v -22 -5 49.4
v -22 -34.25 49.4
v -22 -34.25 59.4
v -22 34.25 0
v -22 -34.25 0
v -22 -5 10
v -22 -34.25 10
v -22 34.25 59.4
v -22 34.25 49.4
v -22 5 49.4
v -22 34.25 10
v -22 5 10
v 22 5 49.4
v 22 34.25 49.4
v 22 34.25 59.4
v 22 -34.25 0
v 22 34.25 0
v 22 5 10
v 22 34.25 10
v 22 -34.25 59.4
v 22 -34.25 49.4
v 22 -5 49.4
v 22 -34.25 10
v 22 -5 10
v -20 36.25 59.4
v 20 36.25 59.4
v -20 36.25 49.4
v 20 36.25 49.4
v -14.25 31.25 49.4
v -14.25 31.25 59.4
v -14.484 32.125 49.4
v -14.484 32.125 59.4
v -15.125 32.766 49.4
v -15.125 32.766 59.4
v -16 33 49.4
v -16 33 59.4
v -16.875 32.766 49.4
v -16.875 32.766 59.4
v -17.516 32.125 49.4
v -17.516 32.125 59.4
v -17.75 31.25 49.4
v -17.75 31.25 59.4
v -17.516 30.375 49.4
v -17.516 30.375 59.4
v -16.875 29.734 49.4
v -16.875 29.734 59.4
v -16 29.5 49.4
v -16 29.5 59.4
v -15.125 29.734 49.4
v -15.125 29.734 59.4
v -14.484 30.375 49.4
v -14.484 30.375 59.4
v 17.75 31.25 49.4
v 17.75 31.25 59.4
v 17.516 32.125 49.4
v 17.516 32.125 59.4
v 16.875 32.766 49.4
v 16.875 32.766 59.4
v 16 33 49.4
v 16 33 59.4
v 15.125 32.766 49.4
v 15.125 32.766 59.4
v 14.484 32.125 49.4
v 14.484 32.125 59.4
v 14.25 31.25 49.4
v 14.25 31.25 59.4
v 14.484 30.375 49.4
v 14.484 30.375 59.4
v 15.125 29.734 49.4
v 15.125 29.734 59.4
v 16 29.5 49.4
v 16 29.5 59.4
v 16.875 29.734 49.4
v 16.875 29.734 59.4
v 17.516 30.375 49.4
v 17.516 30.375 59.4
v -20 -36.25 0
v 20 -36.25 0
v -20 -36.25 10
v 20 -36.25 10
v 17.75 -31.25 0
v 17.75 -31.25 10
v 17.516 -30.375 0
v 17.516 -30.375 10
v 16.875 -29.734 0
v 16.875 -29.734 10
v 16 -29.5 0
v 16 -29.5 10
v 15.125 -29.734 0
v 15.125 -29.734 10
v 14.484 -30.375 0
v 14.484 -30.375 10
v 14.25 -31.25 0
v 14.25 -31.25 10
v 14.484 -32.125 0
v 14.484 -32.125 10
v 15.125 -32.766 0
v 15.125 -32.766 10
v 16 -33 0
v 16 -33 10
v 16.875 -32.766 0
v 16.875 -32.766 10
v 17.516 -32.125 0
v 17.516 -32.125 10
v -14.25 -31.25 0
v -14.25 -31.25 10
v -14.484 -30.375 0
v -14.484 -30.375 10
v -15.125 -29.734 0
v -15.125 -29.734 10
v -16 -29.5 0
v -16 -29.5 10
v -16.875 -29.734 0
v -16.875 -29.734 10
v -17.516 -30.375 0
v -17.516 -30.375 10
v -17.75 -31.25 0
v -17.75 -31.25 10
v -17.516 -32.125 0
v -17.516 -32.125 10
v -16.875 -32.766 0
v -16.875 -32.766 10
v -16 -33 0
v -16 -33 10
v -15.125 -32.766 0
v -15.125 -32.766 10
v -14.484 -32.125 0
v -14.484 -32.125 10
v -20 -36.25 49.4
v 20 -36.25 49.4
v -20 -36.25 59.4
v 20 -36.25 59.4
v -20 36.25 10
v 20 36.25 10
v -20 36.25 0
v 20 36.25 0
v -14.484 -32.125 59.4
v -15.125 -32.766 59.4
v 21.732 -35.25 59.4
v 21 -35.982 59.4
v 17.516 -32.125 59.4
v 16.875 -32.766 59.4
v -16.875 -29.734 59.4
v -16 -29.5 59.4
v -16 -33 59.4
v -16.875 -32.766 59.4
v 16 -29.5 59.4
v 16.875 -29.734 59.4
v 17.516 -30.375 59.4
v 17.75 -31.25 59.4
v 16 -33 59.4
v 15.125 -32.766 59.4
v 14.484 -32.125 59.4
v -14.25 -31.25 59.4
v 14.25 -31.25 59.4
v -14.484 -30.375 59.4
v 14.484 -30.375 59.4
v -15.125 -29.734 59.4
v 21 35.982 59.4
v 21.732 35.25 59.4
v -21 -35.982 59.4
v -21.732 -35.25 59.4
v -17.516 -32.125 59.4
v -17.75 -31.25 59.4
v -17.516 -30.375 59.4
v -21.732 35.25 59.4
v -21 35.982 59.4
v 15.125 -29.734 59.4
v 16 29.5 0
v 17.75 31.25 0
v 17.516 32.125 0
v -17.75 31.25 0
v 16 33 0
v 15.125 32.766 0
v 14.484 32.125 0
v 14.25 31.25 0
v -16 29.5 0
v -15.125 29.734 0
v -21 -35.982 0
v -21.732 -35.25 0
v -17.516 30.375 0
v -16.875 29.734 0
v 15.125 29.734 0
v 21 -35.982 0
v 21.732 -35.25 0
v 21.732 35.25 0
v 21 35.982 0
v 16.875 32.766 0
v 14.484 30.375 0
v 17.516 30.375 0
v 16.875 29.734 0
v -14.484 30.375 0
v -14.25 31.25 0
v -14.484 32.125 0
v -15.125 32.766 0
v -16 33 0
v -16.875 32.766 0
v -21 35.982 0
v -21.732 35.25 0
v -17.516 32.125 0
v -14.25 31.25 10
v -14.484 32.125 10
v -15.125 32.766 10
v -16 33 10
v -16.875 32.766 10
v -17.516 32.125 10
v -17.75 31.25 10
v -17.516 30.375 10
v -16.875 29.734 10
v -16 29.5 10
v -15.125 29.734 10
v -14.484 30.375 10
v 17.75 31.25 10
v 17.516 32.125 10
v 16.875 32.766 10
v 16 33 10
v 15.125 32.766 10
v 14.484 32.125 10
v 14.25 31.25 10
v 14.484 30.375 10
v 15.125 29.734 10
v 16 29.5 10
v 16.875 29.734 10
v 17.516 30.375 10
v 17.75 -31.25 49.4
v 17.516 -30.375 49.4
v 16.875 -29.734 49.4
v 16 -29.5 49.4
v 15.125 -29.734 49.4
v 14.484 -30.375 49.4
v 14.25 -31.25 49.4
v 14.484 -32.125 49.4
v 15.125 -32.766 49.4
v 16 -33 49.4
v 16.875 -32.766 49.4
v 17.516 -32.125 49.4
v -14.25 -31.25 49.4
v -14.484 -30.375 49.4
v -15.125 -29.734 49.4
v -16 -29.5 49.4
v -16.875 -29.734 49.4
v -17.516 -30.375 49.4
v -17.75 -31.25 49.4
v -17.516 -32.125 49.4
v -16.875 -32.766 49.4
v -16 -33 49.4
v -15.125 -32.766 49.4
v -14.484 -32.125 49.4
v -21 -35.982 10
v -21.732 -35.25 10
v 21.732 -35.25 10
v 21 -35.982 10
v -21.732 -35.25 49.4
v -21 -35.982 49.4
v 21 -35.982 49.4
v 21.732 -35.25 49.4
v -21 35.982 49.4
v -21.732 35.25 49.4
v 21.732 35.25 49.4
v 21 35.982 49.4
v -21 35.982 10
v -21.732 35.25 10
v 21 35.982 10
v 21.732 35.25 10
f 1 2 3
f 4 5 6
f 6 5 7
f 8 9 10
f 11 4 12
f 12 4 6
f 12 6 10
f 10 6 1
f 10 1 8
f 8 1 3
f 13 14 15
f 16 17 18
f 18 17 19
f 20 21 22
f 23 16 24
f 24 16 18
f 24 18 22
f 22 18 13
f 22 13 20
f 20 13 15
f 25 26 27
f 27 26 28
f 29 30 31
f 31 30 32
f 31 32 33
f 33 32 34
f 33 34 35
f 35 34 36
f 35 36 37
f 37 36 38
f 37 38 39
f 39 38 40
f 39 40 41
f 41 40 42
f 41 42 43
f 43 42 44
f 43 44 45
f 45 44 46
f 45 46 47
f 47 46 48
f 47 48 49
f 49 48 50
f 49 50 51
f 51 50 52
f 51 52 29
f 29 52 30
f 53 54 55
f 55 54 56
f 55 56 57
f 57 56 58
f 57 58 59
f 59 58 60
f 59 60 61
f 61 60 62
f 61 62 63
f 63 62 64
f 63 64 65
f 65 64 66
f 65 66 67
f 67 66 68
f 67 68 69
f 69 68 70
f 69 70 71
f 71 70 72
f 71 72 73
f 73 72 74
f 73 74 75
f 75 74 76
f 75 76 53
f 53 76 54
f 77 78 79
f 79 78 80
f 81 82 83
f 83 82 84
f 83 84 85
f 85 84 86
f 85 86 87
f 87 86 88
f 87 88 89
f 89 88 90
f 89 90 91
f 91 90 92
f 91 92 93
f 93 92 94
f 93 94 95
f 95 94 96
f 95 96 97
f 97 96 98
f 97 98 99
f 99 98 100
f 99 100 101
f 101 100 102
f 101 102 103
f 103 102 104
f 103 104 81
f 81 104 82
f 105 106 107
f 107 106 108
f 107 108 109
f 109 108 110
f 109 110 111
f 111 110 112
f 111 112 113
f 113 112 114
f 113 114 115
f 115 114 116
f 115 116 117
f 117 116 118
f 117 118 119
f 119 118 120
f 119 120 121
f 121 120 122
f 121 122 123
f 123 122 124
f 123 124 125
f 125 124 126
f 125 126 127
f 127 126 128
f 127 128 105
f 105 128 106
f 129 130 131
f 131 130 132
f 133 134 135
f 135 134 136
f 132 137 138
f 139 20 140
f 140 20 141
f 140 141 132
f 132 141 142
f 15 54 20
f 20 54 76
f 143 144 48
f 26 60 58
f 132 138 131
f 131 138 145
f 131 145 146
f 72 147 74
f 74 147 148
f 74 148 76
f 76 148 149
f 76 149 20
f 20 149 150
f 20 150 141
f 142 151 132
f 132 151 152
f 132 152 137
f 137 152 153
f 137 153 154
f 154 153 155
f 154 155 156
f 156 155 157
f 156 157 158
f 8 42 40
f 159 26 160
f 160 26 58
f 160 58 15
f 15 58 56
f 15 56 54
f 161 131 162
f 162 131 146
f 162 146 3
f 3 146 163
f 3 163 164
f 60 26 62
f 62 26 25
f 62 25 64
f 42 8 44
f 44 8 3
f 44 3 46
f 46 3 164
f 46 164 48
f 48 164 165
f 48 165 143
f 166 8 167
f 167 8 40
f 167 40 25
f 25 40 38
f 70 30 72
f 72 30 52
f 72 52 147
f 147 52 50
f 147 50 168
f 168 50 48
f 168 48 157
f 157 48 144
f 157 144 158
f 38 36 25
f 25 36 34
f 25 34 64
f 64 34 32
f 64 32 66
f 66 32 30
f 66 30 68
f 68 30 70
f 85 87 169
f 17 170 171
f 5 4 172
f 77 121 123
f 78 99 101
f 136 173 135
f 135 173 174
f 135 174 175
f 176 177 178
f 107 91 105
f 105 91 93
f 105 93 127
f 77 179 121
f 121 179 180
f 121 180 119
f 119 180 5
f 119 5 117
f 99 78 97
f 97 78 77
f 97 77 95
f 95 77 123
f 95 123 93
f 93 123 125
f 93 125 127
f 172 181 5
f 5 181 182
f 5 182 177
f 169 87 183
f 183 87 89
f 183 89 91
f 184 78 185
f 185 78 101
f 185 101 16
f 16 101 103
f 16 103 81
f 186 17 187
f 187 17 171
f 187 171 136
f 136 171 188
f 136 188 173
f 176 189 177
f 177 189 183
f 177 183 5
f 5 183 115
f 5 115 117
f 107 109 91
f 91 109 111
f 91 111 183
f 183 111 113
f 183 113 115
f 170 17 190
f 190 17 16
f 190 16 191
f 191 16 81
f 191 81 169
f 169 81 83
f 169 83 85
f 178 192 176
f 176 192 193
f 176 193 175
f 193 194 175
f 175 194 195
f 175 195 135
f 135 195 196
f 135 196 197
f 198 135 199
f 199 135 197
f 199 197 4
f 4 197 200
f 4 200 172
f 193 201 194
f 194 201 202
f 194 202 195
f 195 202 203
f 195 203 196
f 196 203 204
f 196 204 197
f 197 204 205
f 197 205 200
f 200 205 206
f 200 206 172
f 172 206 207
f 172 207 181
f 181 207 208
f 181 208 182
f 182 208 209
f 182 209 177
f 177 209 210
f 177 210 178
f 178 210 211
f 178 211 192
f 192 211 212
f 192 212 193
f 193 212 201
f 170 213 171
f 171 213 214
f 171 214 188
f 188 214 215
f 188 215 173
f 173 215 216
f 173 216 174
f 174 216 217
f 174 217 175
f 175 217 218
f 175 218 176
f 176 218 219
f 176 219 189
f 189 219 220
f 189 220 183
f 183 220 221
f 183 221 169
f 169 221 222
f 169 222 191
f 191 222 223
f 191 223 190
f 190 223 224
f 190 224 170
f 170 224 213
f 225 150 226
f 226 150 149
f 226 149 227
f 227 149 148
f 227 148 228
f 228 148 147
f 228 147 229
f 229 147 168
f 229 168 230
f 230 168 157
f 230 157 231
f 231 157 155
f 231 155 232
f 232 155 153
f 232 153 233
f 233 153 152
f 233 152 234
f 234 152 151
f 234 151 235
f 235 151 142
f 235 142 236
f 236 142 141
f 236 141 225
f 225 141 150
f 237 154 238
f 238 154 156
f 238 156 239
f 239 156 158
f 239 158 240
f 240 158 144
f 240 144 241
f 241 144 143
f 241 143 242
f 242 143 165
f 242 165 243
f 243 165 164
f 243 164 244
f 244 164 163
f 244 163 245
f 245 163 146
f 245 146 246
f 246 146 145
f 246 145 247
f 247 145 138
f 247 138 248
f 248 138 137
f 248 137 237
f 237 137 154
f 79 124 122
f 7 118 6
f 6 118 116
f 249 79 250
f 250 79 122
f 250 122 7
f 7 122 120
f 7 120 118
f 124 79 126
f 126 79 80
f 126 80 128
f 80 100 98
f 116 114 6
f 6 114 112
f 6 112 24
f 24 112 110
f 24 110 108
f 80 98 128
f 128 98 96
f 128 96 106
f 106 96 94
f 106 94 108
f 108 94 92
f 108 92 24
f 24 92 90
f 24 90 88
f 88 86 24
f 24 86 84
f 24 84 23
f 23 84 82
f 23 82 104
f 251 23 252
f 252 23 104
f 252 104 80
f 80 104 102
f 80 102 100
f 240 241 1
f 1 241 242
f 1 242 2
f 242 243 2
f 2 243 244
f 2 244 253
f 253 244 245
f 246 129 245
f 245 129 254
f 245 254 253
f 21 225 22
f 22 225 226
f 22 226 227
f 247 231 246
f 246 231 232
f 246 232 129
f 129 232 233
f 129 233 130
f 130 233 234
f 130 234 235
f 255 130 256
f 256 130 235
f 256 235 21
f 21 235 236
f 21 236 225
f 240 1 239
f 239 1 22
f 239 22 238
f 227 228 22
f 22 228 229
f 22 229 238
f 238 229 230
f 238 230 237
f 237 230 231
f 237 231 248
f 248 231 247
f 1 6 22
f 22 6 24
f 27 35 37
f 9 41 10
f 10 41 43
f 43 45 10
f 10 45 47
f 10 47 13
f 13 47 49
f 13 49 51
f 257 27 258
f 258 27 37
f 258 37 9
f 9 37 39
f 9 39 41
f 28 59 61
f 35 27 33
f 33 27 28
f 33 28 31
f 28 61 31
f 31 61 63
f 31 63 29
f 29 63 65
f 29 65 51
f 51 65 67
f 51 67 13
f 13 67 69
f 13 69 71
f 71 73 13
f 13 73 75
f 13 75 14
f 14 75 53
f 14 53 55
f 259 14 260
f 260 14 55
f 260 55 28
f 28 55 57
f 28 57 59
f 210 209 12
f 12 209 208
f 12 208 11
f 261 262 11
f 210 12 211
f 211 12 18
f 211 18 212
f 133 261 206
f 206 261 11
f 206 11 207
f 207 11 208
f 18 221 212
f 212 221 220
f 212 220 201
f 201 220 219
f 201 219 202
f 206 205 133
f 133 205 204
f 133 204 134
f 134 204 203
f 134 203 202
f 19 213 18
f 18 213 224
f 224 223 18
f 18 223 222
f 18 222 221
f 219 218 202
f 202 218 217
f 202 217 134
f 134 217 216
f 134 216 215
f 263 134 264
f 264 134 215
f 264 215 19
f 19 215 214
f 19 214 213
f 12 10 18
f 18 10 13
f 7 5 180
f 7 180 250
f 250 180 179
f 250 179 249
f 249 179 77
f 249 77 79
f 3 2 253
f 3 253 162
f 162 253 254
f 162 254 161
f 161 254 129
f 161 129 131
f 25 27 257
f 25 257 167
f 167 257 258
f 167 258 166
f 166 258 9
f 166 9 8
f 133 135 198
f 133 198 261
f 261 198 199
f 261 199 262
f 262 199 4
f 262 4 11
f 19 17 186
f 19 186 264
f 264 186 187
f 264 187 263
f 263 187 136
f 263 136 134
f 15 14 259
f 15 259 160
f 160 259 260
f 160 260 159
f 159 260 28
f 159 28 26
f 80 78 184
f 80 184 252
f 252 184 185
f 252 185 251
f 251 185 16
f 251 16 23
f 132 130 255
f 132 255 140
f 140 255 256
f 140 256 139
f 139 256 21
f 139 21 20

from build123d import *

# Parameters (mm, degrees)
SKETCH_2_W          = 44
SKETCH_2_H          = 72.5
EXTRUDE_1_DEPTH     = 59.4
SKETCH_3_R          = 1.75
CUT_EXTRUDE_1_DEPTH = 60.4
SKETCH_4_W          = 39.4
SKETCH_4_H          = 31.25
CUT_EXTRUDE_2_DEPTH = 45
FILLET_1_R          = 2


with BuildPart() as part:
    # ｽｹｯﾁ2 → ﾎﾞｽ - 押し出し1 (new body)
    with BuildSketch(Plane.XY):
        Rectangle(SKETCH_2_W, SKETCH_2_H)
    extrude(amount=EXTRUDE_1_DEPTH)

    # ｽｹｯﾁ3 → ｶｯﾄ - 押し出し1 (cut, through all)
    with BuildSketch(Plane.XY.offset(59.4)):
        with Locations((-16, 31.25)):
            Circle(SKETCH_3_R)
        with Locations((16, 31.25)):
            Circle(SKETCH_3_R)
        with Locations((16, -31.25)):
            Circle(SKETCH_3_R)
        with Locations((-16, -31.25)):
            Circle(SKETCH_3_R)
    extrude(amount=-CUT_EXTRUDE_1_DEPTH, mode=Mode.SUBTRACT)

    # ｽｹｯﾁ4 → ｶｯﾄ - 押し出し2 (cut, through all)
    with BuildSketch(Plane(origin=(22, 0, 0), x_dir=(0, 0, -1), z_dir=(1, 0, 0))):
        with Locations((-29.7, -20.625)):
            Rectangle(SKETCH_4_W, SKETCH_4_H)
        with Locations((-29.7, 20.625)):
            Rectangle(SKETCH_4_W, SKETCH_4_H)
    extrude(amount=-CUT_EXTRUDE_2_DEPTH, mode=Mode.SUBTRACT)

    # ﾌｨﾚｯﾄ1
    fillet_1_edges = [part.edges().sort_by_distance(p)[0] for p in [
        (22, -36.25, 5),
        (-22, -36.25, 5),
        (-22, 36.25, 5),
        (22, 36.25, 5),
        (-22, 36.25, 54.4),
        (22, 36.25, 54.4),
        (22, -36.25, 54.4),
        (-22, -36.25, 54.4),
    ]]
    fillet(fillet_1_edges, radius=FILLET_1_R)


solid = part.part
